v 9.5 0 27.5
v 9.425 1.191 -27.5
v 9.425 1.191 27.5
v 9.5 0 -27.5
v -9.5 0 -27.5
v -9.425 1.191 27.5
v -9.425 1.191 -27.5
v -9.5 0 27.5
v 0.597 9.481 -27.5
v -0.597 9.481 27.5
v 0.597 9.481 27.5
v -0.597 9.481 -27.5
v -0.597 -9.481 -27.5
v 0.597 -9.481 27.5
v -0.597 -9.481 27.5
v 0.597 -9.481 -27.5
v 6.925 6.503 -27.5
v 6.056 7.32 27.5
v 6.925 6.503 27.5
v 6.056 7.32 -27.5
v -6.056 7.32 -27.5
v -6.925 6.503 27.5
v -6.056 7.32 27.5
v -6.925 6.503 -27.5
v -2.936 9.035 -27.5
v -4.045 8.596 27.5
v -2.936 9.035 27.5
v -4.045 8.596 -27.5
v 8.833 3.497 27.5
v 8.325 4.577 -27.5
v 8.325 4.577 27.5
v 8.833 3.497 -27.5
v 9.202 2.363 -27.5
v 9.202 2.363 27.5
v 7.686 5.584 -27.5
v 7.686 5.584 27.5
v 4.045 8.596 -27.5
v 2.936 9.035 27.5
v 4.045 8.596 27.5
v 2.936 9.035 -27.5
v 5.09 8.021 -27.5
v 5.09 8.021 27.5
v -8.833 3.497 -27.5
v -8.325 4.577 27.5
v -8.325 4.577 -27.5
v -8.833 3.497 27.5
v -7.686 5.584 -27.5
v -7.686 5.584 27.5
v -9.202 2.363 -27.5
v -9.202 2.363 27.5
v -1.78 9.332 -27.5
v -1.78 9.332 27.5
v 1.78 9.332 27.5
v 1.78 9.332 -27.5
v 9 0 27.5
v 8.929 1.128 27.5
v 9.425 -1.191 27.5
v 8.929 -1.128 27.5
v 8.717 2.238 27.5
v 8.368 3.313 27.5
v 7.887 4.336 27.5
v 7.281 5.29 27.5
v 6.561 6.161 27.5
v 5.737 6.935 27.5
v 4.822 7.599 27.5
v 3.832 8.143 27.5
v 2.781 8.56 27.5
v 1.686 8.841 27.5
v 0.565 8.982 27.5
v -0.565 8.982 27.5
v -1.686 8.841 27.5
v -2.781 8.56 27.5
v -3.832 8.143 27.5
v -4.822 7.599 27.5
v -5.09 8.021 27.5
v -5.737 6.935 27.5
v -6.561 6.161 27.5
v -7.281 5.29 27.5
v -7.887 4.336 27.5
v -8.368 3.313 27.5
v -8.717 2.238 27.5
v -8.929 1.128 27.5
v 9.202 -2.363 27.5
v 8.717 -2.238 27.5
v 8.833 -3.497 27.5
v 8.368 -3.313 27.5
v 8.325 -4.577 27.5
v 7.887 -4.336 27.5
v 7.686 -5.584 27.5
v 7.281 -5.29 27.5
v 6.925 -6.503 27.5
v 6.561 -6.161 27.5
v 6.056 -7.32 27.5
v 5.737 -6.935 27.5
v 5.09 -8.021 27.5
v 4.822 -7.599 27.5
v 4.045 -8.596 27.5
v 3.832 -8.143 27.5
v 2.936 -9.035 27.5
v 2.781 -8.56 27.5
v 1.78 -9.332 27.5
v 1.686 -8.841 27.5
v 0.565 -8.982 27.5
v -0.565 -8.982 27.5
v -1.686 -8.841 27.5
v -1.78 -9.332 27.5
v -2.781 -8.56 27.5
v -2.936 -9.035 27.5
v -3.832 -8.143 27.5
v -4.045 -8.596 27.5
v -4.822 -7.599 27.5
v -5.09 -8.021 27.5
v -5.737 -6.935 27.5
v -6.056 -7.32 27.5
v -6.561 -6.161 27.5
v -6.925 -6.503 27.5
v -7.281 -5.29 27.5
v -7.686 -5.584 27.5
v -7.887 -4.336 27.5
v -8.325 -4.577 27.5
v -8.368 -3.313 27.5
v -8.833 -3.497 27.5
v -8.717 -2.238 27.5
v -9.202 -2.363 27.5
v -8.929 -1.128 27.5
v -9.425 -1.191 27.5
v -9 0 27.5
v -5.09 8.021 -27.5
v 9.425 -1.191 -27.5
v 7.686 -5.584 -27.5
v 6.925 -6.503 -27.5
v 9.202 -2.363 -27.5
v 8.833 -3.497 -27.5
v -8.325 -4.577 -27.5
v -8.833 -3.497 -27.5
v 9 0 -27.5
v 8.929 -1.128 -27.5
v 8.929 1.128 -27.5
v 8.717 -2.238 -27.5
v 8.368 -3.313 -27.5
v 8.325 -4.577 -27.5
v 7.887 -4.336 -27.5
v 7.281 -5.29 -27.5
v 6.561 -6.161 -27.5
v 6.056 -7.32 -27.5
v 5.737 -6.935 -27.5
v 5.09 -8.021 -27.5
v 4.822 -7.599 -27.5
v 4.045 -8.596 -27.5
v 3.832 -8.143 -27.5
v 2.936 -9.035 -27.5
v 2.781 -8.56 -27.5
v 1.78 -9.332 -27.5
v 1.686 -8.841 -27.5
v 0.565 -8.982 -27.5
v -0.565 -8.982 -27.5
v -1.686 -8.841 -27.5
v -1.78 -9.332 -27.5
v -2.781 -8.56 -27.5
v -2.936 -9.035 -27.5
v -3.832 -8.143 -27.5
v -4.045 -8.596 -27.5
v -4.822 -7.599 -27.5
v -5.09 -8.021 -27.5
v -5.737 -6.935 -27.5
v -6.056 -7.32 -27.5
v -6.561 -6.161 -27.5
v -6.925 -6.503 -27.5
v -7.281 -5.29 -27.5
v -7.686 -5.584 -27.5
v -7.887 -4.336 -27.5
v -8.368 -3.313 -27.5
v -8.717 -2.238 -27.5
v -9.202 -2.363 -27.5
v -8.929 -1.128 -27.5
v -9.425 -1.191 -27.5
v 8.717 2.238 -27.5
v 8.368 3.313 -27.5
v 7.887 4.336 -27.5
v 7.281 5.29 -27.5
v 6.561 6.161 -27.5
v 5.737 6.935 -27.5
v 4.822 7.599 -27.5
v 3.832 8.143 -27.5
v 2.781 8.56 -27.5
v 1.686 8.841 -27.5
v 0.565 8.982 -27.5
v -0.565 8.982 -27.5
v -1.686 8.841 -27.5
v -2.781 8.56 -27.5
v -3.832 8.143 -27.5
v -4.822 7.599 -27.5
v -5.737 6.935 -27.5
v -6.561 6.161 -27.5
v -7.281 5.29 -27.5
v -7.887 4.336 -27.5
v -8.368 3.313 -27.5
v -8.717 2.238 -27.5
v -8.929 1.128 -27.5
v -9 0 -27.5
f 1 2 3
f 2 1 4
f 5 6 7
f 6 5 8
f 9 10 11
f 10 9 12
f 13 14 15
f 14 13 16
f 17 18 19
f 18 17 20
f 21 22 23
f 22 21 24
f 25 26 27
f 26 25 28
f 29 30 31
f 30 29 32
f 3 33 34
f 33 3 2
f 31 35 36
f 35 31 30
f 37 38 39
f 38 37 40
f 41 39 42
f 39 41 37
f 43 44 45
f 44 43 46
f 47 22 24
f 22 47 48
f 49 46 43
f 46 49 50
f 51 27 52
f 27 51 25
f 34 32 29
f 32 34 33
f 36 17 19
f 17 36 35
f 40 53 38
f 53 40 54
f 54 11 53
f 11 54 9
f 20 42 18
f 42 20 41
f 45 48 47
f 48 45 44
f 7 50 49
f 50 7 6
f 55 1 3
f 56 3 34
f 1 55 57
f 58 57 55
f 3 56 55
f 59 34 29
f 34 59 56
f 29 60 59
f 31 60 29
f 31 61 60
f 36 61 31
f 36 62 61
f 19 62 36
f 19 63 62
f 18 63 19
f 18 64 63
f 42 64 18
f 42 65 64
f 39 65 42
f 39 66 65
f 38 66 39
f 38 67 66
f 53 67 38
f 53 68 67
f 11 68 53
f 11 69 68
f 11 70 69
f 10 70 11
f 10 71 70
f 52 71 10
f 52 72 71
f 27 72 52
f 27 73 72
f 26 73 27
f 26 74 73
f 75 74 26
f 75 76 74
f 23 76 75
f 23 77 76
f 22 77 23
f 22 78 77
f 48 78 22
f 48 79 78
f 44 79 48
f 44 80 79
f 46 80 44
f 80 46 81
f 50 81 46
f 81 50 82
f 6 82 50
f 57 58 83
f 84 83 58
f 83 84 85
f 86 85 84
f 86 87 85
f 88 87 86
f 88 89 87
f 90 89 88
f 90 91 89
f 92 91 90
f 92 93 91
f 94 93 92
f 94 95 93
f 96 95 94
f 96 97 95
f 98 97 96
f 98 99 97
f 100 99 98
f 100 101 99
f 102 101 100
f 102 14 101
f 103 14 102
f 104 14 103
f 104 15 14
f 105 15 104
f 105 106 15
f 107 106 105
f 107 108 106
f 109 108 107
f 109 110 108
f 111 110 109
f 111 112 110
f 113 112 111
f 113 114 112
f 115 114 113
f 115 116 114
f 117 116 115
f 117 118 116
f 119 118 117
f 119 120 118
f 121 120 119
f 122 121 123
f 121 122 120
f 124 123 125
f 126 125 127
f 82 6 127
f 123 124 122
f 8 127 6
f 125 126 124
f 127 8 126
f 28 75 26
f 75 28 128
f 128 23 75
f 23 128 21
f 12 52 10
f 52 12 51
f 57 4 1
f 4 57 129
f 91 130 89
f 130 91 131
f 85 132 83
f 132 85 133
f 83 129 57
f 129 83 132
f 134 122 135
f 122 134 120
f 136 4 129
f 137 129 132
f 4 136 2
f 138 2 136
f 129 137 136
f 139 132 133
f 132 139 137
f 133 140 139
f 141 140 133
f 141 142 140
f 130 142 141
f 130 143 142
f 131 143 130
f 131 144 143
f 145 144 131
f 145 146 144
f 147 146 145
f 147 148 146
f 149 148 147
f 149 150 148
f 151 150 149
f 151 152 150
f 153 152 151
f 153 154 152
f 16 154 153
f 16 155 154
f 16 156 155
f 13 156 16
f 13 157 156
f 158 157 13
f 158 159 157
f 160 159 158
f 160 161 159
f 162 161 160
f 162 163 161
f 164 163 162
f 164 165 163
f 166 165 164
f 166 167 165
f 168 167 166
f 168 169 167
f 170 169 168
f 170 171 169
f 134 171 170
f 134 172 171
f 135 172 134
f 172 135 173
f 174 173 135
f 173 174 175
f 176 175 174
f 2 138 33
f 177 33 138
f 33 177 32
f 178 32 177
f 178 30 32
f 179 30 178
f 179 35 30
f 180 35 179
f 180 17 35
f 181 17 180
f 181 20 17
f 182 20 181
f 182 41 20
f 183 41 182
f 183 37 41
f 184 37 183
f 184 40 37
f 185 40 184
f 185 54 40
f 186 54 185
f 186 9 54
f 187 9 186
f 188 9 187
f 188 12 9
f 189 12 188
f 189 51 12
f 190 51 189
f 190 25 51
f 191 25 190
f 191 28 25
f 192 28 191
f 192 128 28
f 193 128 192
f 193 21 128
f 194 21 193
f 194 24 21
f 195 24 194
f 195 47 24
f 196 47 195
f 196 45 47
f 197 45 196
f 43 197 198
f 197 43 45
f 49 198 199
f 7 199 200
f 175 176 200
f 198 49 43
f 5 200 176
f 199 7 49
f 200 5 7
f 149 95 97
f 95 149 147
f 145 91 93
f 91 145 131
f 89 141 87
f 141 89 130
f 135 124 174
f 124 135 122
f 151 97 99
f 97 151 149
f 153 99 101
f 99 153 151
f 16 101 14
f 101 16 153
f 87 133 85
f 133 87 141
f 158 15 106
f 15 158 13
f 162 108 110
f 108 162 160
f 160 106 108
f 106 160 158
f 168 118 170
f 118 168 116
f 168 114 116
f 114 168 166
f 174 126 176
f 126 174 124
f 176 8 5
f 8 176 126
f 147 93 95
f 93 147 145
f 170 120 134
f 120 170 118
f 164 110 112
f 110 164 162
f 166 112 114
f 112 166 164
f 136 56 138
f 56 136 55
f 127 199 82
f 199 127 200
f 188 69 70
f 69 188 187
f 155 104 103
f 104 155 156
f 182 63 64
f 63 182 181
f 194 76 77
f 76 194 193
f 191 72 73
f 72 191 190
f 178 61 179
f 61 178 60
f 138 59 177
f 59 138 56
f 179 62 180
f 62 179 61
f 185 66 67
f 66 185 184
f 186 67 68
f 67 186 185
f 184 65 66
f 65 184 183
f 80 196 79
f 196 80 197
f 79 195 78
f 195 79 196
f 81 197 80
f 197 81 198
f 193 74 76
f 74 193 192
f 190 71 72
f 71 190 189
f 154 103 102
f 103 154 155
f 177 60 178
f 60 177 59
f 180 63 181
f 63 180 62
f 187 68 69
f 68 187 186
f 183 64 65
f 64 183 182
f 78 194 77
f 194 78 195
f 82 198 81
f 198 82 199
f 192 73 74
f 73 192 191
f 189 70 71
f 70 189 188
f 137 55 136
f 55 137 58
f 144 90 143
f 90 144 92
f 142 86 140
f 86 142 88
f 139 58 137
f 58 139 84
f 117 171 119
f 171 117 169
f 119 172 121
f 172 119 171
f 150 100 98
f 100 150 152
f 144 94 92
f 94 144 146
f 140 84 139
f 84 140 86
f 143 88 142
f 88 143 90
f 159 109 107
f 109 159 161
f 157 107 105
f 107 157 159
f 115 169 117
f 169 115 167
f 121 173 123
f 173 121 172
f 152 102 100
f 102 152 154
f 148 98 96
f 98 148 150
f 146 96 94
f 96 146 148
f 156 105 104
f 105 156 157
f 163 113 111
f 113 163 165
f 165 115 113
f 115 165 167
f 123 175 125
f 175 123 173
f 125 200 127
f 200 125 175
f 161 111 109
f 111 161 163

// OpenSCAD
$fn = 50;


difference() {
	union() {
		translate(v = [0, 0, -27.5000000000]) {
			cylinder(h = 55, r = 9.5000000000);
		}
	}
	union() {
		translate(v = [0, 0, -100.0000000000]) {
			cylinder(h = 200, r = 9);
		}
	}
}
